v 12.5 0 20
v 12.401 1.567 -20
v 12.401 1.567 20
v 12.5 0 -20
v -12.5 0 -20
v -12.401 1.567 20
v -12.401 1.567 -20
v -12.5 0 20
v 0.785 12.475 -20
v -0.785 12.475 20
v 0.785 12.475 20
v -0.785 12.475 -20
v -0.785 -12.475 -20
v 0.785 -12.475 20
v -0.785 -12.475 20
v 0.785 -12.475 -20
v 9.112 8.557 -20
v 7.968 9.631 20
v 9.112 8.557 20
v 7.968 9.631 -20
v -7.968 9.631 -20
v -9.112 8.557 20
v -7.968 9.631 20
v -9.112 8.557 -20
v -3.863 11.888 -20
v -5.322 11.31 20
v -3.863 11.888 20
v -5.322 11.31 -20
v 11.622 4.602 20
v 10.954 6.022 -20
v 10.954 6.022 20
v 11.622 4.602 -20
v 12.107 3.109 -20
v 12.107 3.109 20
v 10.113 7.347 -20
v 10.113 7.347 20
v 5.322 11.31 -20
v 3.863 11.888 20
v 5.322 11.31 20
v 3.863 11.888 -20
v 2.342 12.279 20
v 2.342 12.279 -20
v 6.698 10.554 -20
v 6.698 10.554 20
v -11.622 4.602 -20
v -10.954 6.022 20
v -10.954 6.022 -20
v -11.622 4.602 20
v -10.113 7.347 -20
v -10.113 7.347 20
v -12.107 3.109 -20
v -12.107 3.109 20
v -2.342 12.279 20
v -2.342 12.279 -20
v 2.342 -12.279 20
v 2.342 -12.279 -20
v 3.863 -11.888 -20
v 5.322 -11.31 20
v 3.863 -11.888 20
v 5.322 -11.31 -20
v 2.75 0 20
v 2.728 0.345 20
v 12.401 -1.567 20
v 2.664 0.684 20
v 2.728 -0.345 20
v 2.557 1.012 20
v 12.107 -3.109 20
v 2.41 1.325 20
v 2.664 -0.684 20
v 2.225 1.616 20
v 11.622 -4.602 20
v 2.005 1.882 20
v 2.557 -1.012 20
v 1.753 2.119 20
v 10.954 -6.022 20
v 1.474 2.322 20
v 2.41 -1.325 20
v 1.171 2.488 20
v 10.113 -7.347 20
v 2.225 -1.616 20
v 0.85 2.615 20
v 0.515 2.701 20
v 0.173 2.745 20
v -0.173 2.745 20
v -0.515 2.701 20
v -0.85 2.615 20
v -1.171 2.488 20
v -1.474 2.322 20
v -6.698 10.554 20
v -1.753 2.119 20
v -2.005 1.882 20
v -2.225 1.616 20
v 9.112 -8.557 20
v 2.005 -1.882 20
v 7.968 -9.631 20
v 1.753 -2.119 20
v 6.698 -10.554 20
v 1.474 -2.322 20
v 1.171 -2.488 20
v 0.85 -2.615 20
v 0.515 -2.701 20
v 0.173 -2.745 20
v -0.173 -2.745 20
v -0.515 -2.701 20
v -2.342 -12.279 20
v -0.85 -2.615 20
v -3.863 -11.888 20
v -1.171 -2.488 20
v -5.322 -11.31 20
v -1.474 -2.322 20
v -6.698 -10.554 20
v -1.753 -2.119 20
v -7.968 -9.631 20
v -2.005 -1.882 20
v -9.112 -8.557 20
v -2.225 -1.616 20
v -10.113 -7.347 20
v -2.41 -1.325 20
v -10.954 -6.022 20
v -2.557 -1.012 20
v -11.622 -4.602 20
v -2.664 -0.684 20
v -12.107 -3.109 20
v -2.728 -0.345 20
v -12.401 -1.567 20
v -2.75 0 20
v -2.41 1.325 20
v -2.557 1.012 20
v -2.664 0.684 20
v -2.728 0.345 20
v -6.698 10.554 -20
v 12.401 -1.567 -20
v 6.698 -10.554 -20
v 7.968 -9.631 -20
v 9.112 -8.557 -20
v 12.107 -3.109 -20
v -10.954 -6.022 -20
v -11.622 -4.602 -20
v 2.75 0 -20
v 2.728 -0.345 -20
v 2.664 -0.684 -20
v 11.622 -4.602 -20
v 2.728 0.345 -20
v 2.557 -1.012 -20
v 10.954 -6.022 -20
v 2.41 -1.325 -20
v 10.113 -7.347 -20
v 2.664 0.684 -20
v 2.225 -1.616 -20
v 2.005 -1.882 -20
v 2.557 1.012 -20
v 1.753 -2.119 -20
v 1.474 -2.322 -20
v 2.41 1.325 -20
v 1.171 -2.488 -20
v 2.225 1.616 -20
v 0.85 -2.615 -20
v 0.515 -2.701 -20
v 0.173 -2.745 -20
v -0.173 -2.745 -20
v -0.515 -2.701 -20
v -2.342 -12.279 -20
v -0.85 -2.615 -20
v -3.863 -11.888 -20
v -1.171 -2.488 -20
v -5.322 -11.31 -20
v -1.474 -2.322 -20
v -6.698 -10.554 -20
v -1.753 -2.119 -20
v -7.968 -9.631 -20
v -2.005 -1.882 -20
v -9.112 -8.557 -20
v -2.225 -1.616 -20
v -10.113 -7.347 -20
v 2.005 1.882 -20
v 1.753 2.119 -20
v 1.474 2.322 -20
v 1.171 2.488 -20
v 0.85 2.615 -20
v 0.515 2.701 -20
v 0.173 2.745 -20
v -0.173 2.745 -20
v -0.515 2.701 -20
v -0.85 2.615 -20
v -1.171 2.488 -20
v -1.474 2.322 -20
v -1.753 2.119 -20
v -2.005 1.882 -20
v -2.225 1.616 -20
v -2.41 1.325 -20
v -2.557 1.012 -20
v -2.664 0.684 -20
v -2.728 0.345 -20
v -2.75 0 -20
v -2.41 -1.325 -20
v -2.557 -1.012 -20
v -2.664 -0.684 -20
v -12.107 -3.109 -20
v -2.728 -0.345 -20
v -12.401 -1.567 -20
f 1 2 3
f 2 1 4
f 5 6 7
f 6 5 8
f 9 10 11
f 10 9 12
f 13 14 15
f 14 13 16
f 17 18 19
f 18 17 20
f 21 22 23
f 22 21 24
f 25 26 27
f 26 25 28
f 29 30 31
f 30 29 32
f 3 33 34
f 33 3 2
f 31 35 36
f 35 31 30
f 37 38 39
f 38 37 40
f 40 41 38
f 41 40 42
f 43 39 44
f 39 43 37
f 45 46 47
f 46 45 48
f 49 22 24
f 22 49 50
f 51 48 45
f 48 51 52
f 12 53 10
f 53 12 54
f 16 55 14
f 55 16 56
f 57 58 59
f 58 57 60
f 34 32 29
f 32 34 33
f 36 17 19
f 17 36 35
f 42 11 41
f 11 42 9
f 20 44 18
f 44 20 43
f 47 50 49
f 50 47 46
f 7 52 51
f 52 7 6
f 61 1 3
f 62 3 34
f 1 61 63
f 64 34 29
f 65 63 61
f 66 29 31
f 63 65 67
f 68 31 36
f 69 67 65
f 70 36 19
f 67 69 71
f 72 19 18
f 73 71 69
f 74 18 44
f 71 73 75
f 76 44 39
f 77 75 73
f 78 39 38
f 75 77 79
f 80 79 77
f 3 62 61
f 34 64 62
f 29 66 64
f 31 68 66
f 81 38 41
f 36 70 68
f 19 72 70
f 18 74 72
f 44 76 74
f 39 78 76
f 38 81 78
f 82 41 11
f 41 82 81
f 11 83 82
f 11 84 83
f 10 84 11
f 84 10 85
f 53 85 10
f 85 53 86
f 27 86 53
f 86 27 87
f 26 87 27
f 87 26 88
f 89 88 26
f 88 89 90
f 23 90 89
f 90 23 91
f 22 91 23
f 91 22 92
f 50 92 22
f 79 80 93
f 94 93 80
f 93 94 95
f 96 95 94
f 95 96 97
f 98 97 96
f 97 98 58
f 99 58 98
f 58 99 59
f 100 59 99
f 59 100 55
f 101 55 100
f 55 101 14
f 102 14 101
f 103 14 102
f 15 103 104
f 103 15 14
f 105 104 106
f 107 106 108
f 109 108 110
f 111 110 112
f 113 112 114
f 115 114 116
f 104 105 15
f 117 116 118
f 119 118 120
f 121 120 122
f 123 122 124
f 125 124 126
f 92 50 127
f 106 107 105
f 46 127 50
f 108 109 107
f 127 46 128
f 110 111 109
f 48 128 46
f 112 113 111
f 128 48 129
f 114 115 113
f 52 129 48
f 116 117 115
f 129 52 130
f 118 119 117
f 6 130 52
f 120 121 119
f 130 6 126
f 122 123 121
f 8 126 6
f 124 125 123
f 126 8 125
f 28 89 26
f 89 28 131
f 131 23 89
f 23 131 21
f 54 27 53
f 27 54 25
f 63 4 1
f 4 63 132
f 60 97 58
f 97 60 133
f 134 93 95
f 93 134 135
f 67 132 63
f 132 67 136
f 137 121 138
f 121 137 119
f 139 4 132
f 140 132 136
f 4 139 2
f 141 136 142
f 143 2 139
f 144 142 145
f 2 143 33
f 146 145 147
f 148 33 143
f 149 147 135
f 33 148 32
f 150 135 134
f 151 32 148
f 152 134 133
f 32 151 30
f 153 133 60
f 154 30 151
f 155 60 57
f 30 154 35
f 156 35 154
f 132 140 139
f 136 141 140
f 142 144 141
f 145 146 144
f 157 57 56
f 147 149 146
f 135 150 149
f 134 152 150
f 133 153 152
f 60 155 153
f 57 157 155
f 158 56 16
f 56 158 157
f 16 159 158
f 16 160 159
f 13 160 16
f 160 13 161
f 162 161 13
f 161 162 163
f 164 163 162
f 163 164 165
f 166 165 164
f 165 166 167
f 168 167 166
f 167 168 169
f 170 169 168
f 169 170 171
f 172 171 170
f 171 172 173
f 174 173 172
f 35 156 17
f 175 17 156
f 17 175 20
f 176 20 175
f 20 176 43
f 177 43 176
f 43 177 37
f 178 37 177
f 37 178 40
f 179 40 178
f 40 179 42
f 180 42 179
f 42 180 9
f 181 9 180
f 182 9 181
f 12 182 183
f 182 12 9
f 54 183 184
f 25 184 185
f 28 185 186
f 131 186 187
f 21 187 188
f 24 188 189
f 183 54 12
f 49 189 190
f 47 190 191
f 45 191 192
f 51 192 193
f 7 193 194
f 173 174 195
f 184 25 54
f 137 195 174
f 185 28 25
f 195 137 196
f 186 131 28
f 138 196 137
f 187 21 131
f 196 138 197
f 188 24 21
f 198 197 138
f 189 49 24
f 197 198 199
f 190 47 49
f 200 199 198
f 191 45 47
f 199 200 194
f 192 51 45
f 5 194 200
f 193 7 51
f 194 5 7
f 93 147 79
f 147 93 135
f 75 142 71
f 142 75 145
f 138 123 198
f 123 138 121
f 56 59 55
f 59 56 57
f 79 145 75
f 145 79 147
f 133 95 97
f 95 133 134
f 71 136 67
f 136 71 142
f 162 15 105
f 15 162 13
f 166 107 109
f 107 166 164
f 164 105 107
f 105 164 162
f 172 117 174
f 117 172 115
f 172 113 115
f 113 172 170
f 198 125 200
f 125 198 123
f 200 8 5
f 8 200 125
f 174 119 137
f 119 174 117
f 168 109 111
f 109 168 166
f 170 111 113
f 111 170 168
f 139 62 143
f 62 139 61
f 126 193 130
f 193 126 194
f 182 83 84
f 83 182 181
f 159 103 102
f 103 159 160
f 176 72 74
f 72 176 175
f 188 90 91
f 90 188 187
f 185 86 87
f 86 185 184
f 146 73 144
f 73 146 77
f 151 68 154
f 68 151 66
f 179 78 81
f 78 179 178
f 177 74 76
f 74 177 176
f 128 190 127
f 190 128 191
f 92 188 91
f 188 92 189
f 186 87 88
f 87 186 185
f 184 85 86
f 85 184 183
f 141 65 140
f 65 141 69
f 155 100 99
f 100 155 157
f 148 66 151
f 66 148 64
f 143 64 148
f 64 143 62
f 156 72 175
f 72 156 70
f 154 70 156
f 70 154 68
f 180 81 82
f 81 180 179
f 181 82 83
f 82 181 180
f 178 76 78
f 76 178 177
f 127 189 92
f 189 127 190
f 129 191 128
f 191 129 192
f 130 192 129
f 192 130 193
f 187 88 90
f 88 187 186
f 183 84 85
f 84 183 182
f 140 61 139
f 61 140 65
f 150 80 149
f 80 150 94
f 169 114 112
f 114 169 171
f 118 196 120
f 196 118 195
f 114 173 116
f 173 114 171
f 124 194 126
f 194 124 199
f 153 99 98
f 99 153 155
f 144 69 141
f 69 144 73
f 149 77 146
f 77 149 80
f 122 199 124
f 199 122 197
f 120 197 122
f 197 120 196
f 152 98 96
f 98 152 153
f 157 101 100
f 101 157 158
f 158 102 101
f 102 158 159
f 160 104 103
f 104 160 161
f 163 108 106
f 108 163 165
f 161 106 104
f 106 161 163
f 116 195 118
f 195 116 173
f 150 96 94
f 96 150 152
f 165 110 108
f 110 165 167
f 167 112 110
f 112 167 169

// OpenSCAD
$fn = 50;


difference() {
	union() {
		translate(v = [0, 0, -20.0000000000]) {
			cylinder(h = 40, r = 12.5000000000);
		}
	}
	union() {
		translate(v = [0, 0, -100.0000000000]) {
			cylinder(h = 200, r = 2.7500000000);
		}
	}
}
